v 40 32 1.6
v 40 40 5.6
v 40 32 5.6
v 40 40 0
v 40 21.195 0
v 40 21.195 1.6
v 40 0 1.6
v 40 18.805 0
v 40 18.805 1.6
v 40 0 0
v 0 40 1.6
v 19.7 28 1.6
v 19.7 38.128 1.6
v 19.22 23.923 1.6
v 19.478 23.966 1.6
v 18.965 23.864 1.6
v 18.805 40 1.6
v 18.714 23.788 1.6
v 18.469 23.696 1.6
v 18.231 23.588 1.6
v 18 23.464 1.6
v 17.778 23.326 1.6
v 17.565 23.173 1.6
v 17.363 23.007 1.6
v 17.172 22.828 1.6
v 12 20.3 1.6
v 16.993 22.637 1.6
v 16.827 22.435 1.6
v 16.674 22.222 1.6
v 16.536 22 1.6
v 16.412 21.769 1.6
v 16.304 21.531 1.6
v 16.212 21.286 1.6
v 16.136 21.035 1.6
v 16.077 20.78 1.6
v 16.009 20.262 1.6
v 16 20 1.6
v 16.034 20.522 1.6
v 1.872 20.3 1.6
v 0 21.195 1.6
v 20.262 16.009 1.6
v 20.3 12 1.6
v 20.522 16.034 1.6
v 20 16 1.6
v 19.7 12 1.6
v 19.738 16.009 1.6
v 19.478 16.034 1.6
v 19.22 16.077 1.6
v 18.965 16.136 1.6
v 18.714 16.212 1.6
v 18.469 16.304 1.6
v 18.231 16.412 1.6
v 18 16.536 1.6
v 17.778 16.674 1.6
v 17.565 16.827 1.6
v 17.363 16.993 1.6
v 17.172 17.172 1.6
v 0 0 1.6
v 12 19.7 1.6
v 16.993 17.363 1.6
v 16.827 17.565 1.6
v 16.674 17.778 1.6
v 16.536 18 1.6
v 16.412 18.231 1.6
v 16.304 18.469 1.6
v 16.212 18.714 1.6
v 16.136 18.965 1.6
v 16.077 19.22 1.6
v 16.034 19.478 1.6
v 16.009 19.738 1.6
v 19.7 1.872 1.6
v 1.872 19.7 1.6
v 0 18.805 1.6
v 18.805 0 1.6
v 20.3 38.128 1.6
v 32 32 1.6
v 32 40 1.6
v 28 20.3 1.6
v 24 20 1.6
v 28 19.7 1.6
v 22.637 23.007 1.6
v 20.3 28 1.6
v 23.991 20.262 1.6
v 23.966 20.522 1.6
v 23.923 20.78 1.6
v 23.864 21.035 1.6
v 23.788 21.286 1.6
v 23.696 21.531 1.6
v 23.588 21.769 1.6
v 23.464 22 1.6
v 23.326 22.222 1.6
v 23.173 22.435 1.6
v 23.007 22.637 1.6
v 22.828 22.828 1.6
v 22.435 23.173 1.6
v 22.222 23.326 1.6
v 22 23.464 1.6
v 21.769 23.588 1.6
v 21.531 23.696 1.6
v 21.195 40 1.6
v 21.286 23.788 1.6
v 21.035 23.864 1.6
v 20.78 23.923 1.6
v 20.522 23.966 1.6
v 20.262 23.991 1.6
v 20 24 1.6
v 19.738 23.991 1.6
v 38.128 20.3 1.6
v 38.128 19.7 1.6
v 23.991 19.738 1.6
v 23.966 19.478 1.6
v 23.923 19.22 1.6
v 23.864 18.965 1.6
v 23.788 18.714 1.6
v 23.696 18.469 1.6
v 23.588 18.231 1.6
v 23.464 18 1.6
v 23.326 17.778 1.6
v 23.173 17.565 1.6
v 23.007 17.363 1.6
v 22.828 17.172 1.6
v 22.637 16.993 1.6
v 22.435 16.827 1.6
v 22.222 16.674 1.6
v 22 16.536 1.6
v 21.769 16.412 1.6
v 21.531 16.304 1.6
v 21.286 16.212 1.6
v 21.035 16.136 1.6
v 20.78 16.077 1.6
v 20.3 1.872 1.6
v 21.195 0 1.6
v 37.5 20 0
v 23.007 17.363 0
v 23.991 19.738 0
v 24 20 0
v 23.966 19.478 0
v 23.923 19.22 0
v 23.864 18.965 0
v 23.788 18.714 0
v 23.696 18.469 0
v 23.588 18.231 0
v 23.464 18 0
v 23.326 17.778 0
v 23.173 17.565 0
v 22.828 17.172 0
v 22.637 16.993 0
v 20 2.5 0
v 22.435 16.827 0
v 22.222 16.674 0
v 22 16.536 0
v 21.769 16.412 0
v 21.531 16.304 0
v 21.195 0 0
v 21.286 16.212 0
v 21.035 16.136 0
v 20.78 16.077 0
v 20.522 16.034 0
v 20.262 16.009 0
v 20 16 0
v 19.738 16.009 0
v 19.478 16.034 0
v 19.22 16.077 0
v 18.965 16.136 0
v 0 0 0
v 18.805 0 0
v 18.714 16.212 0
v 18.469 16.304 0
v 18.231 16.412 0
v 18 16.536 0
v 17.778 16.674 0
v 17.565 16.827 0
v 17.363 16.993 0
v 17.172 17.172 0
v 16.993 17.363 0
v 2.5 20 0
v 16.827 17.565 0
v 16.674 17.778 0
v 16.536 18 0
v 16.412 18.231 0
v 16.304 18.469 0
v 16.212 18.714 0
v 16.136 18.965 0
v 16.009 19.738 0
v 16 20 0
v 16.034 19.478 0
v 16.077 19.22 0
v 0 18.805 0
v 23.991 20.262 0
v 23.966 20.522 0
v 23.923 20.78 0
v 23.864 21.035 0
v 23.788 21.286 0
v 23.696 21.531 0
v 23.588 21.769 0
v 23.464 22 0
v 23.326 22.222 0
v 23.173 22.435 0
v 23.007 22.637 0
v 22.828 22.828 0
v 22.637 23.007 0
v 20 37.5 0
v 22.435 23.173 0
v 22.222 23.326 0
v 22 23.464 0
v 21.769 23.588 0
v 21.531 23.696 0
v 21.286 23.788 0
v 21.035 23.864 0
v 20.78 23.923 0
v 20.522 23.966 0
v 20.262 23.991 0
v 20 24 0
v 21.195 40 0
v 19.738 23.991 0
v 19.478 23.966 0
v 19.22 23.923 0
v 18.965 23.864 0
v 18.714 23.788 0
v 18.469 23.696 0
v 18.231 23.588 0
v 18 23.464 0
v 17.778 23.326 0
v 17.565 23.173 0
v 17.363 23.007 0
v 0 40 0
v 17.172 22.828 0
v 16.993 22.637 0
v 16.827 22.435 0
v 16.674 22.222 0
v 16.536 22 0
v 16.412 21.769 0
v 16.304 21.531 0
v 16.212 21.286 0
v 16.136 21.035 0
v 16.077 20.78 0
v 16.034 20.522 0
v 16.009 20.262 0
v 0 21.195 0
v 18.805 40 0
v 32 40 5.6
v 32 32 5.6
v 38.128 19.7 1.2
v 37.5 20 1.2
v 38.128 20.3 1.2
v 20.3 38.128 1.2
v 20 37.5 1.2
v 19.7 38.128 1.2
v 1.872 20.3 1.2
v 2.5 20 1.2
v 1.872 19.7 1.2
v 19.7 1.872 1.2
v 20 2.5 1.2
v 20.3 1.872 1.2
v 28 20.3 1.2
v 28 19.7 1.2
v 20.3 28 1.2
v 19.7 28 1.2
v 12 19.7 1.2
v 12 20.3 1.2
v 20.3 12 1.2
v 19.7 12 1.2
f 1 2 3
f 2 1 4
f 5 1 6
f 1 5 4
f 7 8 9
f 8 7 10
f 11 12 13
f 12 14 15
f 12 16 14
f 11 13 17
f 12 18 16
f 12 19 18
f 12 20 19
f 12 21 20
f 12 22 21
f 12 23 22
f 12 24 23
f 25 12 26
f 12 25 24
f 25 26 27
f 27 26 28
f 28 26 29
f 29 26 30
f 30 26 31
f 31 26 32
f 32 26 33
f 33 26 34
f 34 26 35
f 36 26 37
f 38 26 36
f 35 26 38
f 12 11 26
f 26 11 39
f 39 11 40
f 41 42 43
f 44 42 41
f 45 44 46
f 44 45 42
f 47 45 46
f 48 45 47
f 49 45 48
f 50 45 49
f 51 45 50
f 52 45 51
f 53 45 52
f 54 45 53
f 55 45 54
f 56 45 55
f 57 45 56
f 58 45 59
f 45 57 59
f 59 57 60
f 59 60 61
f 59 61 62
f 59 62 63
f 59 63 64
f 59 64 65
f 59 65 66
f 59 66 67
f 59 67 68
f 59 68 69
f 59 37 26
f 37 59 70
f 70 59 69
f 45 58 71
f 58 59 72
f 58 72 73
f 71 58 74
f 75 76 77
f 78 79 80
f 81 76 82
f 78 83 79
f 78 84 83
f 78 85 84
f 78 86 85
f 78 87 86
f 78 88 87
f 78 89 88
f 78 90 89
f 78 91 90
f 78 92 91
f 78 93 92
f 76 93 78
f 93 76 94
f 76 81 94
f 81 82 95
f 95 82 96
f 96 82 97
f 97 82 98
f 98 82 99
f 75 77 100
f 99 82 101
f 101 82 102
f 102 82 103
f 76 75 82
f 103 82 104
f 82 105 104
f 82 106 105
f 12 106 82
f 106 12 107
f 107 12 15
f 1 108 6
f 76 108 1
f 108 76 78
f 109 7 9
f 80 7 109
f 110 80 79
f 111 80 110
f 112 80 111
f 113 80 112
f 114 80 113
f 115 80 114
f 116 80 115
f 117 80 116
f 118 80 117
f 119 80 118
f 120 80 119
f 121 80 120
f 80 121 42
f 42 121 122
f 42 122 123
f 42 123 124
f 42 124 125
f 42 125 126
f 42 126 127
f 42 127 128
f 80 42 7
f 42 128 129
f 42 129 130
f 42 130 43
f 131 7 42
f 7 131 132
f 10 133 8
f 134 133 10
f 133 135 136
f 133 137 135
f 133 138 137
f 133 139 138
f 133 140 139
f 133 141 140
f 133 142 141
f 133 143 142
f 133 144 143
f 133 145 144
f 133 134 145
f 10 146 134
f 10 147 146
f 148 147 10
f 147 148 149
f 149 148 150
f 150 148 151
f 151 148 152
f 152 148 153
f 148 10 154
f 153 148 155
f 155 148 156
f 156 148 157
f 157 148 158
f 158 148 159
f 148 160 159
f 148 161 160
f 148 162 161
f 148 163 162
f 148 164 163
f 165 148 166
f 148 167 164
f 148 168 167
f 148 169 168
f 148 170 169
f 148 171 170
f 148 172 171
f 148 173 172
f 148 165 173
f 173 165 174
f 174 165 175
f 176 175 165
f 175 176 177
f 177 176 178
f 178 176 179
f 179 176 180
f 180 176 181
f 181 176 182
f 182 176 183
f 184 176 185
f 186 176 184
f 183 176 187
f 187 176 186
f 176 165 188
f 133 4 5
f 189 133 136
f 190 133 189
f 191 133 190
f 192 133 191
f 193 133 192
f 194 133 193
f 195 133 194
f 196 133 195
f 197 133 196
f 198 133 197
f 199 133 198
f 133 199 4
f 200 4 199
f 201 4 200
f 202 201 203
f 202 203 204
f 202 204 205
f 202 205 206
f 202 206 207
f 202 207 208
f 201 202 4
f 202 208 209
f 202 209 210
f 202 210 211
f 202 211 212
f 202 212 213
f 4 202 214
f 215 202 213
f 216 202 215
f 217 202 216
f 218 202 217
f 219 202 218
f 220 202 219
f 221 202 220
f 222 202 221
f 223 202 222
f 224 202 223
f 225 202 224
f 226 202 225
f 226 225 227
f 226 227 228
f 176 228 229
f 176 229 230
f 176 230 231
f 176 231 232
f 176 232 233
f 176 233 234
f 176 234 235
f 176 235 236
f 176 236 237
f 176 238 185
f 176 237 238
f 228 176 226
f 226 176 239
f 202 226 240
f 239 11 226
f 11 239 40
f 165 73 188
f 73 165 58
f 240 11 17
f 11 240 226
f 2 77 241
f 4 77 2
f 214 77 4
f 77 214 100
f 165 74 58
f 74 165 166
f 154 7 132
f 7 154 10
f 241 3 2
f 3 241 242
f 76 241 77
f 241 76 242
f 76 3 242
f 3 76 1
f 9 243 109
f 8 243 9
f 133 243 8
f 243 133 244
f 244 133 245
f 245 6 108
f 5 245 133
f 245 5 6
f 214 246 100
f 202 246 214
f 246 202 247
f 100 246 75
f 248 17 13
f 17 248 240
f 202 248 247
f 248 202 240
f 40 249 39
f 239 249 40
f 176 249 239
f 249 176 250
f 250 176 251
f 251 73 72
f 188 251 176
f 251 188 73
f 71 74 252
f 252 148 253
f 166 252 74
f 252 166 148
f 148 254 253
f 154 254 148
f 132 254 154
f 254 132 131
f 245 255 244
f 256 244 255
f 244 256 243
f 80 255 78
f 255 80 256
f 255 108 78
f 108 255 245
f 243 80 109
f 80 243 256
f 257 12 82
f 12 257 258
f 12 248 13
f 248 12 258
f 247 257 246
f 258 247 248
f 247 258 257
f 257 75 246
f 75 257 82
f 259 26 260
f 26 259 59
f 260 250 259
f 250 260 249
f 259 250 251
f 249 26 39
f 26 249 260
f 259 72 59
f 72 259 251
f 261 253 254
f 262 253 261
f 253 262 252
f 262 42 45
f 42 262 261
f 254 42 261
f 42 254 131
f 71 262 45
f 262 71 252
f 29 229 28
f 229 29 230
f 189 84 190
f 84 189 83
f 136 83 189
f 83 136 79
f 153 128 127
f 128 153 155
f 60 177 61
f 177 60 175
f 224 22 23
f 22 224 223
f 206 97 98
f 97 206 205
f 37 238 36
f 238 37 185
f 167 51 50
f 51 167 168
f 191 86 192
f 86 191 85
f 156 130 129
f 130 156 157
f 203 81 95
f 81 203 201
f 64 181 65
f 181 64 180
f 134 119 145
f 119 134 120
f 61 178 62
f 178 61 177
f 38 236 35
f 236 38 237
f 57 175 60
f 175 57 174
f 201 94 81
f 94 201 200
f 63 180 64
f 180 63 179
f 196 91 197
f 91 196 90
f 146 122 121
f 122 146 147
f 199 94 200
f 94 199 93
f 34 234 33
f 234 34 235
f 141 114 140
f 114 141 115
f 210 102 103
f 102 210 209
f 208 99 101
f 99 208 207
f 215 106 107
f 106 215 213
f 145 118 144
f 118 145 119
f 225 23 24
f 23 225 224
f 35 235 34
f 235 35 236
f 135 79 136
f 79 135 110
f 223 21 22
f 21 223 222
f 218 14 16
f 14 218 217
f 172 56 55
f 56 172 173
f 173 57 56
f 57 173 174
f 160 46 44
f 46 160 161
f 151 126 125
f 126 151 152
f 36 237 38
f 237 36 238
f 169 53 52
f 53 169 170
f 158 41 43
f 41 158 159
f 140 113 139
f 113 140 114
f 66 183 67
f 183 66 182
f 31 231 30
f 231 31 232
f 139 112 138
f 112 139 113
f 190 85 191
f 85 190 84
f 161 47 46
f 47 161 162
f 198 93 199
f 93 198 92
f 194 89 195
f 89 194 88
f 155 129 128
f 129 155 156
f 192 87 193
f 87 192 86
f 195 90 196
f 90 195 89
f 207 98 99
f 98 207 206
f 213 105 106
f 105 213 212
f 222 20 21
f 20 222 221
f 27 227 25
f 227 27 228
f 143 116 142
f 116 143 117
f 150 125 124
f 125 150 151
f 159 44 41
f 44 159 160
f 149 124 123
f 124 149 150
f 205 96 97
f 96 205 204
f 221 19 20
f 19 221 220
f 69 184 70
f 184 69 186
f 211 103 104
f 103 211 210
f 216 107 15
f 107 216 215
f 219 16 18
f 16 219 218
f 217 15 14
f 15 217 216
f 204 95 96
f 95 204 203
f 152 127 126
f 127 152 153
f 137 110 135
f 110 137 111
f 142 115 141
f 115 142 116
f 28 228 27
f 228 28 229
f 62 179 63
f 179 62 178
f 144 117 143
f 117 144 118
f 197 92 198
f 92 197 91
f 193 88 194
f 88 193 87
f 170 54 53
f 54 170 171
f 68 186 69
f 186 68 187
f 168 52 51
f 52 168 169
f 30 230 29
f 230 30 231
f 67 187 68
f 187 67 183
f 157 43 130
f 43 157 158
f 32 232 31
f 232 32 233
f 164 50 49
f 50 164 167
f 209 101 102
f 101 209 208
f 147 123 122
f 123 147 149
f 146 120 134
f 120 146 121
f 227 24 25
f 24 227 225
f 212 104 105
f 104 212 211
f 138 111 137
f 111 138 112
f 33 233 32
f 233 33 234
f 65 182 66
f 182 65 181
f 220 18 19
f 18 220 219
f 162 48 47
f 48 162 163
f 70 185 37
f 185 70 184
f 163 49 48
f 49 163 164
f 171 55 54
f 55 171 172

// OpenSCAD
// A stencil for painting the orange dots that Lantern's Auto looks for, one
// at each crossing of the mat's lines.
//
// A flat plate with a round hole in the middle, the size of a dot, and a
// V-notch in the middle of each edge: set the plate on a crossing so the
// line runs into the notch on both sides, each way, and the hole is centred
// on the crossing. A shallow groove on top runs from each notch towards
// the hole, to sight along. A tab on one corner lifts it off without
// dragging it through the wet paint. Colour the hole in with a paint marker
// or dab paint through it with a sponge, lift straight up, move on.
//
// Prints flat, hole up, without supports. PETG wipes clean; PLA does too.
// 0.2 mm layers, four walls.
//
// Render with OpenSCAD:
//   openscad -o dot-stencil.stl -D 'part="stencil"' dot-stencil.scad

/* [Dot] */
dot = 8;            // the hole, which is the dot's diameter, mm

/* [Plate] */
plate = 40;         // the plate is this square, mm
thick = 1.6;        // thick enough to stay flat, thin enough to paint through
notch = 2.4;        // width of the V-notch at each edge's middle, mm
notch_depth = 2.5;  // how far the notch cuts in from the edge
groove = 0.6;       // width of the sighting groove on top, mm (0 for none)
groove_depth = 0.4; // its depth

/* [Tab] */
tab = 8;            // the lifting tab on one corner, mm each way (0 for none)
tab_height = 4;     // how far it stands up above the plate

/* [Render] */
part = "stencil"; // [stencil]

$fn = 96;

module stencil() {
  difference() {
    union() {
      cube([plate, plate, thick]);
      if (tab > 0) translate([plate - tab, plate - tab, 0]) cube([tab, tab, thick + tab_height]);
    }
    // the hole
    translate([plate / 2, plate / 2, -1]) cylinder(d = dot, h = thick + 2);
    // a V-notch in the middle of each edge
    for (a = [0, 90, 180, 270]) {
      translate([plate / 2, plate / 2, 0]) rotate([0, 0, a]) translate([plate / 2, 0, -1])
        linear_extrude(thick + tab_height + 2)
          polygon([[0.01, -notch / 2], [0.01, notch / 2], [-notch_depth, 0]]);
    }
    // a sighting groove from each notch towards the hole, stopping well short of it
    if (groove > 0) {
      for (a = [0, 90, 180, 270]) {
        translate([plate / 2, plate / 2, thick - groove_depth]) rotate([0, 0, a])
          translate([dot / 2 + 4, -groove / 2, 0]) cube([plate / 2 - notch_depth - dot / 2 - 3, groove, groove_depth + 1]); // runs on into the notch
      }
    }
  }
}

if (part == "stencil") stencil();
